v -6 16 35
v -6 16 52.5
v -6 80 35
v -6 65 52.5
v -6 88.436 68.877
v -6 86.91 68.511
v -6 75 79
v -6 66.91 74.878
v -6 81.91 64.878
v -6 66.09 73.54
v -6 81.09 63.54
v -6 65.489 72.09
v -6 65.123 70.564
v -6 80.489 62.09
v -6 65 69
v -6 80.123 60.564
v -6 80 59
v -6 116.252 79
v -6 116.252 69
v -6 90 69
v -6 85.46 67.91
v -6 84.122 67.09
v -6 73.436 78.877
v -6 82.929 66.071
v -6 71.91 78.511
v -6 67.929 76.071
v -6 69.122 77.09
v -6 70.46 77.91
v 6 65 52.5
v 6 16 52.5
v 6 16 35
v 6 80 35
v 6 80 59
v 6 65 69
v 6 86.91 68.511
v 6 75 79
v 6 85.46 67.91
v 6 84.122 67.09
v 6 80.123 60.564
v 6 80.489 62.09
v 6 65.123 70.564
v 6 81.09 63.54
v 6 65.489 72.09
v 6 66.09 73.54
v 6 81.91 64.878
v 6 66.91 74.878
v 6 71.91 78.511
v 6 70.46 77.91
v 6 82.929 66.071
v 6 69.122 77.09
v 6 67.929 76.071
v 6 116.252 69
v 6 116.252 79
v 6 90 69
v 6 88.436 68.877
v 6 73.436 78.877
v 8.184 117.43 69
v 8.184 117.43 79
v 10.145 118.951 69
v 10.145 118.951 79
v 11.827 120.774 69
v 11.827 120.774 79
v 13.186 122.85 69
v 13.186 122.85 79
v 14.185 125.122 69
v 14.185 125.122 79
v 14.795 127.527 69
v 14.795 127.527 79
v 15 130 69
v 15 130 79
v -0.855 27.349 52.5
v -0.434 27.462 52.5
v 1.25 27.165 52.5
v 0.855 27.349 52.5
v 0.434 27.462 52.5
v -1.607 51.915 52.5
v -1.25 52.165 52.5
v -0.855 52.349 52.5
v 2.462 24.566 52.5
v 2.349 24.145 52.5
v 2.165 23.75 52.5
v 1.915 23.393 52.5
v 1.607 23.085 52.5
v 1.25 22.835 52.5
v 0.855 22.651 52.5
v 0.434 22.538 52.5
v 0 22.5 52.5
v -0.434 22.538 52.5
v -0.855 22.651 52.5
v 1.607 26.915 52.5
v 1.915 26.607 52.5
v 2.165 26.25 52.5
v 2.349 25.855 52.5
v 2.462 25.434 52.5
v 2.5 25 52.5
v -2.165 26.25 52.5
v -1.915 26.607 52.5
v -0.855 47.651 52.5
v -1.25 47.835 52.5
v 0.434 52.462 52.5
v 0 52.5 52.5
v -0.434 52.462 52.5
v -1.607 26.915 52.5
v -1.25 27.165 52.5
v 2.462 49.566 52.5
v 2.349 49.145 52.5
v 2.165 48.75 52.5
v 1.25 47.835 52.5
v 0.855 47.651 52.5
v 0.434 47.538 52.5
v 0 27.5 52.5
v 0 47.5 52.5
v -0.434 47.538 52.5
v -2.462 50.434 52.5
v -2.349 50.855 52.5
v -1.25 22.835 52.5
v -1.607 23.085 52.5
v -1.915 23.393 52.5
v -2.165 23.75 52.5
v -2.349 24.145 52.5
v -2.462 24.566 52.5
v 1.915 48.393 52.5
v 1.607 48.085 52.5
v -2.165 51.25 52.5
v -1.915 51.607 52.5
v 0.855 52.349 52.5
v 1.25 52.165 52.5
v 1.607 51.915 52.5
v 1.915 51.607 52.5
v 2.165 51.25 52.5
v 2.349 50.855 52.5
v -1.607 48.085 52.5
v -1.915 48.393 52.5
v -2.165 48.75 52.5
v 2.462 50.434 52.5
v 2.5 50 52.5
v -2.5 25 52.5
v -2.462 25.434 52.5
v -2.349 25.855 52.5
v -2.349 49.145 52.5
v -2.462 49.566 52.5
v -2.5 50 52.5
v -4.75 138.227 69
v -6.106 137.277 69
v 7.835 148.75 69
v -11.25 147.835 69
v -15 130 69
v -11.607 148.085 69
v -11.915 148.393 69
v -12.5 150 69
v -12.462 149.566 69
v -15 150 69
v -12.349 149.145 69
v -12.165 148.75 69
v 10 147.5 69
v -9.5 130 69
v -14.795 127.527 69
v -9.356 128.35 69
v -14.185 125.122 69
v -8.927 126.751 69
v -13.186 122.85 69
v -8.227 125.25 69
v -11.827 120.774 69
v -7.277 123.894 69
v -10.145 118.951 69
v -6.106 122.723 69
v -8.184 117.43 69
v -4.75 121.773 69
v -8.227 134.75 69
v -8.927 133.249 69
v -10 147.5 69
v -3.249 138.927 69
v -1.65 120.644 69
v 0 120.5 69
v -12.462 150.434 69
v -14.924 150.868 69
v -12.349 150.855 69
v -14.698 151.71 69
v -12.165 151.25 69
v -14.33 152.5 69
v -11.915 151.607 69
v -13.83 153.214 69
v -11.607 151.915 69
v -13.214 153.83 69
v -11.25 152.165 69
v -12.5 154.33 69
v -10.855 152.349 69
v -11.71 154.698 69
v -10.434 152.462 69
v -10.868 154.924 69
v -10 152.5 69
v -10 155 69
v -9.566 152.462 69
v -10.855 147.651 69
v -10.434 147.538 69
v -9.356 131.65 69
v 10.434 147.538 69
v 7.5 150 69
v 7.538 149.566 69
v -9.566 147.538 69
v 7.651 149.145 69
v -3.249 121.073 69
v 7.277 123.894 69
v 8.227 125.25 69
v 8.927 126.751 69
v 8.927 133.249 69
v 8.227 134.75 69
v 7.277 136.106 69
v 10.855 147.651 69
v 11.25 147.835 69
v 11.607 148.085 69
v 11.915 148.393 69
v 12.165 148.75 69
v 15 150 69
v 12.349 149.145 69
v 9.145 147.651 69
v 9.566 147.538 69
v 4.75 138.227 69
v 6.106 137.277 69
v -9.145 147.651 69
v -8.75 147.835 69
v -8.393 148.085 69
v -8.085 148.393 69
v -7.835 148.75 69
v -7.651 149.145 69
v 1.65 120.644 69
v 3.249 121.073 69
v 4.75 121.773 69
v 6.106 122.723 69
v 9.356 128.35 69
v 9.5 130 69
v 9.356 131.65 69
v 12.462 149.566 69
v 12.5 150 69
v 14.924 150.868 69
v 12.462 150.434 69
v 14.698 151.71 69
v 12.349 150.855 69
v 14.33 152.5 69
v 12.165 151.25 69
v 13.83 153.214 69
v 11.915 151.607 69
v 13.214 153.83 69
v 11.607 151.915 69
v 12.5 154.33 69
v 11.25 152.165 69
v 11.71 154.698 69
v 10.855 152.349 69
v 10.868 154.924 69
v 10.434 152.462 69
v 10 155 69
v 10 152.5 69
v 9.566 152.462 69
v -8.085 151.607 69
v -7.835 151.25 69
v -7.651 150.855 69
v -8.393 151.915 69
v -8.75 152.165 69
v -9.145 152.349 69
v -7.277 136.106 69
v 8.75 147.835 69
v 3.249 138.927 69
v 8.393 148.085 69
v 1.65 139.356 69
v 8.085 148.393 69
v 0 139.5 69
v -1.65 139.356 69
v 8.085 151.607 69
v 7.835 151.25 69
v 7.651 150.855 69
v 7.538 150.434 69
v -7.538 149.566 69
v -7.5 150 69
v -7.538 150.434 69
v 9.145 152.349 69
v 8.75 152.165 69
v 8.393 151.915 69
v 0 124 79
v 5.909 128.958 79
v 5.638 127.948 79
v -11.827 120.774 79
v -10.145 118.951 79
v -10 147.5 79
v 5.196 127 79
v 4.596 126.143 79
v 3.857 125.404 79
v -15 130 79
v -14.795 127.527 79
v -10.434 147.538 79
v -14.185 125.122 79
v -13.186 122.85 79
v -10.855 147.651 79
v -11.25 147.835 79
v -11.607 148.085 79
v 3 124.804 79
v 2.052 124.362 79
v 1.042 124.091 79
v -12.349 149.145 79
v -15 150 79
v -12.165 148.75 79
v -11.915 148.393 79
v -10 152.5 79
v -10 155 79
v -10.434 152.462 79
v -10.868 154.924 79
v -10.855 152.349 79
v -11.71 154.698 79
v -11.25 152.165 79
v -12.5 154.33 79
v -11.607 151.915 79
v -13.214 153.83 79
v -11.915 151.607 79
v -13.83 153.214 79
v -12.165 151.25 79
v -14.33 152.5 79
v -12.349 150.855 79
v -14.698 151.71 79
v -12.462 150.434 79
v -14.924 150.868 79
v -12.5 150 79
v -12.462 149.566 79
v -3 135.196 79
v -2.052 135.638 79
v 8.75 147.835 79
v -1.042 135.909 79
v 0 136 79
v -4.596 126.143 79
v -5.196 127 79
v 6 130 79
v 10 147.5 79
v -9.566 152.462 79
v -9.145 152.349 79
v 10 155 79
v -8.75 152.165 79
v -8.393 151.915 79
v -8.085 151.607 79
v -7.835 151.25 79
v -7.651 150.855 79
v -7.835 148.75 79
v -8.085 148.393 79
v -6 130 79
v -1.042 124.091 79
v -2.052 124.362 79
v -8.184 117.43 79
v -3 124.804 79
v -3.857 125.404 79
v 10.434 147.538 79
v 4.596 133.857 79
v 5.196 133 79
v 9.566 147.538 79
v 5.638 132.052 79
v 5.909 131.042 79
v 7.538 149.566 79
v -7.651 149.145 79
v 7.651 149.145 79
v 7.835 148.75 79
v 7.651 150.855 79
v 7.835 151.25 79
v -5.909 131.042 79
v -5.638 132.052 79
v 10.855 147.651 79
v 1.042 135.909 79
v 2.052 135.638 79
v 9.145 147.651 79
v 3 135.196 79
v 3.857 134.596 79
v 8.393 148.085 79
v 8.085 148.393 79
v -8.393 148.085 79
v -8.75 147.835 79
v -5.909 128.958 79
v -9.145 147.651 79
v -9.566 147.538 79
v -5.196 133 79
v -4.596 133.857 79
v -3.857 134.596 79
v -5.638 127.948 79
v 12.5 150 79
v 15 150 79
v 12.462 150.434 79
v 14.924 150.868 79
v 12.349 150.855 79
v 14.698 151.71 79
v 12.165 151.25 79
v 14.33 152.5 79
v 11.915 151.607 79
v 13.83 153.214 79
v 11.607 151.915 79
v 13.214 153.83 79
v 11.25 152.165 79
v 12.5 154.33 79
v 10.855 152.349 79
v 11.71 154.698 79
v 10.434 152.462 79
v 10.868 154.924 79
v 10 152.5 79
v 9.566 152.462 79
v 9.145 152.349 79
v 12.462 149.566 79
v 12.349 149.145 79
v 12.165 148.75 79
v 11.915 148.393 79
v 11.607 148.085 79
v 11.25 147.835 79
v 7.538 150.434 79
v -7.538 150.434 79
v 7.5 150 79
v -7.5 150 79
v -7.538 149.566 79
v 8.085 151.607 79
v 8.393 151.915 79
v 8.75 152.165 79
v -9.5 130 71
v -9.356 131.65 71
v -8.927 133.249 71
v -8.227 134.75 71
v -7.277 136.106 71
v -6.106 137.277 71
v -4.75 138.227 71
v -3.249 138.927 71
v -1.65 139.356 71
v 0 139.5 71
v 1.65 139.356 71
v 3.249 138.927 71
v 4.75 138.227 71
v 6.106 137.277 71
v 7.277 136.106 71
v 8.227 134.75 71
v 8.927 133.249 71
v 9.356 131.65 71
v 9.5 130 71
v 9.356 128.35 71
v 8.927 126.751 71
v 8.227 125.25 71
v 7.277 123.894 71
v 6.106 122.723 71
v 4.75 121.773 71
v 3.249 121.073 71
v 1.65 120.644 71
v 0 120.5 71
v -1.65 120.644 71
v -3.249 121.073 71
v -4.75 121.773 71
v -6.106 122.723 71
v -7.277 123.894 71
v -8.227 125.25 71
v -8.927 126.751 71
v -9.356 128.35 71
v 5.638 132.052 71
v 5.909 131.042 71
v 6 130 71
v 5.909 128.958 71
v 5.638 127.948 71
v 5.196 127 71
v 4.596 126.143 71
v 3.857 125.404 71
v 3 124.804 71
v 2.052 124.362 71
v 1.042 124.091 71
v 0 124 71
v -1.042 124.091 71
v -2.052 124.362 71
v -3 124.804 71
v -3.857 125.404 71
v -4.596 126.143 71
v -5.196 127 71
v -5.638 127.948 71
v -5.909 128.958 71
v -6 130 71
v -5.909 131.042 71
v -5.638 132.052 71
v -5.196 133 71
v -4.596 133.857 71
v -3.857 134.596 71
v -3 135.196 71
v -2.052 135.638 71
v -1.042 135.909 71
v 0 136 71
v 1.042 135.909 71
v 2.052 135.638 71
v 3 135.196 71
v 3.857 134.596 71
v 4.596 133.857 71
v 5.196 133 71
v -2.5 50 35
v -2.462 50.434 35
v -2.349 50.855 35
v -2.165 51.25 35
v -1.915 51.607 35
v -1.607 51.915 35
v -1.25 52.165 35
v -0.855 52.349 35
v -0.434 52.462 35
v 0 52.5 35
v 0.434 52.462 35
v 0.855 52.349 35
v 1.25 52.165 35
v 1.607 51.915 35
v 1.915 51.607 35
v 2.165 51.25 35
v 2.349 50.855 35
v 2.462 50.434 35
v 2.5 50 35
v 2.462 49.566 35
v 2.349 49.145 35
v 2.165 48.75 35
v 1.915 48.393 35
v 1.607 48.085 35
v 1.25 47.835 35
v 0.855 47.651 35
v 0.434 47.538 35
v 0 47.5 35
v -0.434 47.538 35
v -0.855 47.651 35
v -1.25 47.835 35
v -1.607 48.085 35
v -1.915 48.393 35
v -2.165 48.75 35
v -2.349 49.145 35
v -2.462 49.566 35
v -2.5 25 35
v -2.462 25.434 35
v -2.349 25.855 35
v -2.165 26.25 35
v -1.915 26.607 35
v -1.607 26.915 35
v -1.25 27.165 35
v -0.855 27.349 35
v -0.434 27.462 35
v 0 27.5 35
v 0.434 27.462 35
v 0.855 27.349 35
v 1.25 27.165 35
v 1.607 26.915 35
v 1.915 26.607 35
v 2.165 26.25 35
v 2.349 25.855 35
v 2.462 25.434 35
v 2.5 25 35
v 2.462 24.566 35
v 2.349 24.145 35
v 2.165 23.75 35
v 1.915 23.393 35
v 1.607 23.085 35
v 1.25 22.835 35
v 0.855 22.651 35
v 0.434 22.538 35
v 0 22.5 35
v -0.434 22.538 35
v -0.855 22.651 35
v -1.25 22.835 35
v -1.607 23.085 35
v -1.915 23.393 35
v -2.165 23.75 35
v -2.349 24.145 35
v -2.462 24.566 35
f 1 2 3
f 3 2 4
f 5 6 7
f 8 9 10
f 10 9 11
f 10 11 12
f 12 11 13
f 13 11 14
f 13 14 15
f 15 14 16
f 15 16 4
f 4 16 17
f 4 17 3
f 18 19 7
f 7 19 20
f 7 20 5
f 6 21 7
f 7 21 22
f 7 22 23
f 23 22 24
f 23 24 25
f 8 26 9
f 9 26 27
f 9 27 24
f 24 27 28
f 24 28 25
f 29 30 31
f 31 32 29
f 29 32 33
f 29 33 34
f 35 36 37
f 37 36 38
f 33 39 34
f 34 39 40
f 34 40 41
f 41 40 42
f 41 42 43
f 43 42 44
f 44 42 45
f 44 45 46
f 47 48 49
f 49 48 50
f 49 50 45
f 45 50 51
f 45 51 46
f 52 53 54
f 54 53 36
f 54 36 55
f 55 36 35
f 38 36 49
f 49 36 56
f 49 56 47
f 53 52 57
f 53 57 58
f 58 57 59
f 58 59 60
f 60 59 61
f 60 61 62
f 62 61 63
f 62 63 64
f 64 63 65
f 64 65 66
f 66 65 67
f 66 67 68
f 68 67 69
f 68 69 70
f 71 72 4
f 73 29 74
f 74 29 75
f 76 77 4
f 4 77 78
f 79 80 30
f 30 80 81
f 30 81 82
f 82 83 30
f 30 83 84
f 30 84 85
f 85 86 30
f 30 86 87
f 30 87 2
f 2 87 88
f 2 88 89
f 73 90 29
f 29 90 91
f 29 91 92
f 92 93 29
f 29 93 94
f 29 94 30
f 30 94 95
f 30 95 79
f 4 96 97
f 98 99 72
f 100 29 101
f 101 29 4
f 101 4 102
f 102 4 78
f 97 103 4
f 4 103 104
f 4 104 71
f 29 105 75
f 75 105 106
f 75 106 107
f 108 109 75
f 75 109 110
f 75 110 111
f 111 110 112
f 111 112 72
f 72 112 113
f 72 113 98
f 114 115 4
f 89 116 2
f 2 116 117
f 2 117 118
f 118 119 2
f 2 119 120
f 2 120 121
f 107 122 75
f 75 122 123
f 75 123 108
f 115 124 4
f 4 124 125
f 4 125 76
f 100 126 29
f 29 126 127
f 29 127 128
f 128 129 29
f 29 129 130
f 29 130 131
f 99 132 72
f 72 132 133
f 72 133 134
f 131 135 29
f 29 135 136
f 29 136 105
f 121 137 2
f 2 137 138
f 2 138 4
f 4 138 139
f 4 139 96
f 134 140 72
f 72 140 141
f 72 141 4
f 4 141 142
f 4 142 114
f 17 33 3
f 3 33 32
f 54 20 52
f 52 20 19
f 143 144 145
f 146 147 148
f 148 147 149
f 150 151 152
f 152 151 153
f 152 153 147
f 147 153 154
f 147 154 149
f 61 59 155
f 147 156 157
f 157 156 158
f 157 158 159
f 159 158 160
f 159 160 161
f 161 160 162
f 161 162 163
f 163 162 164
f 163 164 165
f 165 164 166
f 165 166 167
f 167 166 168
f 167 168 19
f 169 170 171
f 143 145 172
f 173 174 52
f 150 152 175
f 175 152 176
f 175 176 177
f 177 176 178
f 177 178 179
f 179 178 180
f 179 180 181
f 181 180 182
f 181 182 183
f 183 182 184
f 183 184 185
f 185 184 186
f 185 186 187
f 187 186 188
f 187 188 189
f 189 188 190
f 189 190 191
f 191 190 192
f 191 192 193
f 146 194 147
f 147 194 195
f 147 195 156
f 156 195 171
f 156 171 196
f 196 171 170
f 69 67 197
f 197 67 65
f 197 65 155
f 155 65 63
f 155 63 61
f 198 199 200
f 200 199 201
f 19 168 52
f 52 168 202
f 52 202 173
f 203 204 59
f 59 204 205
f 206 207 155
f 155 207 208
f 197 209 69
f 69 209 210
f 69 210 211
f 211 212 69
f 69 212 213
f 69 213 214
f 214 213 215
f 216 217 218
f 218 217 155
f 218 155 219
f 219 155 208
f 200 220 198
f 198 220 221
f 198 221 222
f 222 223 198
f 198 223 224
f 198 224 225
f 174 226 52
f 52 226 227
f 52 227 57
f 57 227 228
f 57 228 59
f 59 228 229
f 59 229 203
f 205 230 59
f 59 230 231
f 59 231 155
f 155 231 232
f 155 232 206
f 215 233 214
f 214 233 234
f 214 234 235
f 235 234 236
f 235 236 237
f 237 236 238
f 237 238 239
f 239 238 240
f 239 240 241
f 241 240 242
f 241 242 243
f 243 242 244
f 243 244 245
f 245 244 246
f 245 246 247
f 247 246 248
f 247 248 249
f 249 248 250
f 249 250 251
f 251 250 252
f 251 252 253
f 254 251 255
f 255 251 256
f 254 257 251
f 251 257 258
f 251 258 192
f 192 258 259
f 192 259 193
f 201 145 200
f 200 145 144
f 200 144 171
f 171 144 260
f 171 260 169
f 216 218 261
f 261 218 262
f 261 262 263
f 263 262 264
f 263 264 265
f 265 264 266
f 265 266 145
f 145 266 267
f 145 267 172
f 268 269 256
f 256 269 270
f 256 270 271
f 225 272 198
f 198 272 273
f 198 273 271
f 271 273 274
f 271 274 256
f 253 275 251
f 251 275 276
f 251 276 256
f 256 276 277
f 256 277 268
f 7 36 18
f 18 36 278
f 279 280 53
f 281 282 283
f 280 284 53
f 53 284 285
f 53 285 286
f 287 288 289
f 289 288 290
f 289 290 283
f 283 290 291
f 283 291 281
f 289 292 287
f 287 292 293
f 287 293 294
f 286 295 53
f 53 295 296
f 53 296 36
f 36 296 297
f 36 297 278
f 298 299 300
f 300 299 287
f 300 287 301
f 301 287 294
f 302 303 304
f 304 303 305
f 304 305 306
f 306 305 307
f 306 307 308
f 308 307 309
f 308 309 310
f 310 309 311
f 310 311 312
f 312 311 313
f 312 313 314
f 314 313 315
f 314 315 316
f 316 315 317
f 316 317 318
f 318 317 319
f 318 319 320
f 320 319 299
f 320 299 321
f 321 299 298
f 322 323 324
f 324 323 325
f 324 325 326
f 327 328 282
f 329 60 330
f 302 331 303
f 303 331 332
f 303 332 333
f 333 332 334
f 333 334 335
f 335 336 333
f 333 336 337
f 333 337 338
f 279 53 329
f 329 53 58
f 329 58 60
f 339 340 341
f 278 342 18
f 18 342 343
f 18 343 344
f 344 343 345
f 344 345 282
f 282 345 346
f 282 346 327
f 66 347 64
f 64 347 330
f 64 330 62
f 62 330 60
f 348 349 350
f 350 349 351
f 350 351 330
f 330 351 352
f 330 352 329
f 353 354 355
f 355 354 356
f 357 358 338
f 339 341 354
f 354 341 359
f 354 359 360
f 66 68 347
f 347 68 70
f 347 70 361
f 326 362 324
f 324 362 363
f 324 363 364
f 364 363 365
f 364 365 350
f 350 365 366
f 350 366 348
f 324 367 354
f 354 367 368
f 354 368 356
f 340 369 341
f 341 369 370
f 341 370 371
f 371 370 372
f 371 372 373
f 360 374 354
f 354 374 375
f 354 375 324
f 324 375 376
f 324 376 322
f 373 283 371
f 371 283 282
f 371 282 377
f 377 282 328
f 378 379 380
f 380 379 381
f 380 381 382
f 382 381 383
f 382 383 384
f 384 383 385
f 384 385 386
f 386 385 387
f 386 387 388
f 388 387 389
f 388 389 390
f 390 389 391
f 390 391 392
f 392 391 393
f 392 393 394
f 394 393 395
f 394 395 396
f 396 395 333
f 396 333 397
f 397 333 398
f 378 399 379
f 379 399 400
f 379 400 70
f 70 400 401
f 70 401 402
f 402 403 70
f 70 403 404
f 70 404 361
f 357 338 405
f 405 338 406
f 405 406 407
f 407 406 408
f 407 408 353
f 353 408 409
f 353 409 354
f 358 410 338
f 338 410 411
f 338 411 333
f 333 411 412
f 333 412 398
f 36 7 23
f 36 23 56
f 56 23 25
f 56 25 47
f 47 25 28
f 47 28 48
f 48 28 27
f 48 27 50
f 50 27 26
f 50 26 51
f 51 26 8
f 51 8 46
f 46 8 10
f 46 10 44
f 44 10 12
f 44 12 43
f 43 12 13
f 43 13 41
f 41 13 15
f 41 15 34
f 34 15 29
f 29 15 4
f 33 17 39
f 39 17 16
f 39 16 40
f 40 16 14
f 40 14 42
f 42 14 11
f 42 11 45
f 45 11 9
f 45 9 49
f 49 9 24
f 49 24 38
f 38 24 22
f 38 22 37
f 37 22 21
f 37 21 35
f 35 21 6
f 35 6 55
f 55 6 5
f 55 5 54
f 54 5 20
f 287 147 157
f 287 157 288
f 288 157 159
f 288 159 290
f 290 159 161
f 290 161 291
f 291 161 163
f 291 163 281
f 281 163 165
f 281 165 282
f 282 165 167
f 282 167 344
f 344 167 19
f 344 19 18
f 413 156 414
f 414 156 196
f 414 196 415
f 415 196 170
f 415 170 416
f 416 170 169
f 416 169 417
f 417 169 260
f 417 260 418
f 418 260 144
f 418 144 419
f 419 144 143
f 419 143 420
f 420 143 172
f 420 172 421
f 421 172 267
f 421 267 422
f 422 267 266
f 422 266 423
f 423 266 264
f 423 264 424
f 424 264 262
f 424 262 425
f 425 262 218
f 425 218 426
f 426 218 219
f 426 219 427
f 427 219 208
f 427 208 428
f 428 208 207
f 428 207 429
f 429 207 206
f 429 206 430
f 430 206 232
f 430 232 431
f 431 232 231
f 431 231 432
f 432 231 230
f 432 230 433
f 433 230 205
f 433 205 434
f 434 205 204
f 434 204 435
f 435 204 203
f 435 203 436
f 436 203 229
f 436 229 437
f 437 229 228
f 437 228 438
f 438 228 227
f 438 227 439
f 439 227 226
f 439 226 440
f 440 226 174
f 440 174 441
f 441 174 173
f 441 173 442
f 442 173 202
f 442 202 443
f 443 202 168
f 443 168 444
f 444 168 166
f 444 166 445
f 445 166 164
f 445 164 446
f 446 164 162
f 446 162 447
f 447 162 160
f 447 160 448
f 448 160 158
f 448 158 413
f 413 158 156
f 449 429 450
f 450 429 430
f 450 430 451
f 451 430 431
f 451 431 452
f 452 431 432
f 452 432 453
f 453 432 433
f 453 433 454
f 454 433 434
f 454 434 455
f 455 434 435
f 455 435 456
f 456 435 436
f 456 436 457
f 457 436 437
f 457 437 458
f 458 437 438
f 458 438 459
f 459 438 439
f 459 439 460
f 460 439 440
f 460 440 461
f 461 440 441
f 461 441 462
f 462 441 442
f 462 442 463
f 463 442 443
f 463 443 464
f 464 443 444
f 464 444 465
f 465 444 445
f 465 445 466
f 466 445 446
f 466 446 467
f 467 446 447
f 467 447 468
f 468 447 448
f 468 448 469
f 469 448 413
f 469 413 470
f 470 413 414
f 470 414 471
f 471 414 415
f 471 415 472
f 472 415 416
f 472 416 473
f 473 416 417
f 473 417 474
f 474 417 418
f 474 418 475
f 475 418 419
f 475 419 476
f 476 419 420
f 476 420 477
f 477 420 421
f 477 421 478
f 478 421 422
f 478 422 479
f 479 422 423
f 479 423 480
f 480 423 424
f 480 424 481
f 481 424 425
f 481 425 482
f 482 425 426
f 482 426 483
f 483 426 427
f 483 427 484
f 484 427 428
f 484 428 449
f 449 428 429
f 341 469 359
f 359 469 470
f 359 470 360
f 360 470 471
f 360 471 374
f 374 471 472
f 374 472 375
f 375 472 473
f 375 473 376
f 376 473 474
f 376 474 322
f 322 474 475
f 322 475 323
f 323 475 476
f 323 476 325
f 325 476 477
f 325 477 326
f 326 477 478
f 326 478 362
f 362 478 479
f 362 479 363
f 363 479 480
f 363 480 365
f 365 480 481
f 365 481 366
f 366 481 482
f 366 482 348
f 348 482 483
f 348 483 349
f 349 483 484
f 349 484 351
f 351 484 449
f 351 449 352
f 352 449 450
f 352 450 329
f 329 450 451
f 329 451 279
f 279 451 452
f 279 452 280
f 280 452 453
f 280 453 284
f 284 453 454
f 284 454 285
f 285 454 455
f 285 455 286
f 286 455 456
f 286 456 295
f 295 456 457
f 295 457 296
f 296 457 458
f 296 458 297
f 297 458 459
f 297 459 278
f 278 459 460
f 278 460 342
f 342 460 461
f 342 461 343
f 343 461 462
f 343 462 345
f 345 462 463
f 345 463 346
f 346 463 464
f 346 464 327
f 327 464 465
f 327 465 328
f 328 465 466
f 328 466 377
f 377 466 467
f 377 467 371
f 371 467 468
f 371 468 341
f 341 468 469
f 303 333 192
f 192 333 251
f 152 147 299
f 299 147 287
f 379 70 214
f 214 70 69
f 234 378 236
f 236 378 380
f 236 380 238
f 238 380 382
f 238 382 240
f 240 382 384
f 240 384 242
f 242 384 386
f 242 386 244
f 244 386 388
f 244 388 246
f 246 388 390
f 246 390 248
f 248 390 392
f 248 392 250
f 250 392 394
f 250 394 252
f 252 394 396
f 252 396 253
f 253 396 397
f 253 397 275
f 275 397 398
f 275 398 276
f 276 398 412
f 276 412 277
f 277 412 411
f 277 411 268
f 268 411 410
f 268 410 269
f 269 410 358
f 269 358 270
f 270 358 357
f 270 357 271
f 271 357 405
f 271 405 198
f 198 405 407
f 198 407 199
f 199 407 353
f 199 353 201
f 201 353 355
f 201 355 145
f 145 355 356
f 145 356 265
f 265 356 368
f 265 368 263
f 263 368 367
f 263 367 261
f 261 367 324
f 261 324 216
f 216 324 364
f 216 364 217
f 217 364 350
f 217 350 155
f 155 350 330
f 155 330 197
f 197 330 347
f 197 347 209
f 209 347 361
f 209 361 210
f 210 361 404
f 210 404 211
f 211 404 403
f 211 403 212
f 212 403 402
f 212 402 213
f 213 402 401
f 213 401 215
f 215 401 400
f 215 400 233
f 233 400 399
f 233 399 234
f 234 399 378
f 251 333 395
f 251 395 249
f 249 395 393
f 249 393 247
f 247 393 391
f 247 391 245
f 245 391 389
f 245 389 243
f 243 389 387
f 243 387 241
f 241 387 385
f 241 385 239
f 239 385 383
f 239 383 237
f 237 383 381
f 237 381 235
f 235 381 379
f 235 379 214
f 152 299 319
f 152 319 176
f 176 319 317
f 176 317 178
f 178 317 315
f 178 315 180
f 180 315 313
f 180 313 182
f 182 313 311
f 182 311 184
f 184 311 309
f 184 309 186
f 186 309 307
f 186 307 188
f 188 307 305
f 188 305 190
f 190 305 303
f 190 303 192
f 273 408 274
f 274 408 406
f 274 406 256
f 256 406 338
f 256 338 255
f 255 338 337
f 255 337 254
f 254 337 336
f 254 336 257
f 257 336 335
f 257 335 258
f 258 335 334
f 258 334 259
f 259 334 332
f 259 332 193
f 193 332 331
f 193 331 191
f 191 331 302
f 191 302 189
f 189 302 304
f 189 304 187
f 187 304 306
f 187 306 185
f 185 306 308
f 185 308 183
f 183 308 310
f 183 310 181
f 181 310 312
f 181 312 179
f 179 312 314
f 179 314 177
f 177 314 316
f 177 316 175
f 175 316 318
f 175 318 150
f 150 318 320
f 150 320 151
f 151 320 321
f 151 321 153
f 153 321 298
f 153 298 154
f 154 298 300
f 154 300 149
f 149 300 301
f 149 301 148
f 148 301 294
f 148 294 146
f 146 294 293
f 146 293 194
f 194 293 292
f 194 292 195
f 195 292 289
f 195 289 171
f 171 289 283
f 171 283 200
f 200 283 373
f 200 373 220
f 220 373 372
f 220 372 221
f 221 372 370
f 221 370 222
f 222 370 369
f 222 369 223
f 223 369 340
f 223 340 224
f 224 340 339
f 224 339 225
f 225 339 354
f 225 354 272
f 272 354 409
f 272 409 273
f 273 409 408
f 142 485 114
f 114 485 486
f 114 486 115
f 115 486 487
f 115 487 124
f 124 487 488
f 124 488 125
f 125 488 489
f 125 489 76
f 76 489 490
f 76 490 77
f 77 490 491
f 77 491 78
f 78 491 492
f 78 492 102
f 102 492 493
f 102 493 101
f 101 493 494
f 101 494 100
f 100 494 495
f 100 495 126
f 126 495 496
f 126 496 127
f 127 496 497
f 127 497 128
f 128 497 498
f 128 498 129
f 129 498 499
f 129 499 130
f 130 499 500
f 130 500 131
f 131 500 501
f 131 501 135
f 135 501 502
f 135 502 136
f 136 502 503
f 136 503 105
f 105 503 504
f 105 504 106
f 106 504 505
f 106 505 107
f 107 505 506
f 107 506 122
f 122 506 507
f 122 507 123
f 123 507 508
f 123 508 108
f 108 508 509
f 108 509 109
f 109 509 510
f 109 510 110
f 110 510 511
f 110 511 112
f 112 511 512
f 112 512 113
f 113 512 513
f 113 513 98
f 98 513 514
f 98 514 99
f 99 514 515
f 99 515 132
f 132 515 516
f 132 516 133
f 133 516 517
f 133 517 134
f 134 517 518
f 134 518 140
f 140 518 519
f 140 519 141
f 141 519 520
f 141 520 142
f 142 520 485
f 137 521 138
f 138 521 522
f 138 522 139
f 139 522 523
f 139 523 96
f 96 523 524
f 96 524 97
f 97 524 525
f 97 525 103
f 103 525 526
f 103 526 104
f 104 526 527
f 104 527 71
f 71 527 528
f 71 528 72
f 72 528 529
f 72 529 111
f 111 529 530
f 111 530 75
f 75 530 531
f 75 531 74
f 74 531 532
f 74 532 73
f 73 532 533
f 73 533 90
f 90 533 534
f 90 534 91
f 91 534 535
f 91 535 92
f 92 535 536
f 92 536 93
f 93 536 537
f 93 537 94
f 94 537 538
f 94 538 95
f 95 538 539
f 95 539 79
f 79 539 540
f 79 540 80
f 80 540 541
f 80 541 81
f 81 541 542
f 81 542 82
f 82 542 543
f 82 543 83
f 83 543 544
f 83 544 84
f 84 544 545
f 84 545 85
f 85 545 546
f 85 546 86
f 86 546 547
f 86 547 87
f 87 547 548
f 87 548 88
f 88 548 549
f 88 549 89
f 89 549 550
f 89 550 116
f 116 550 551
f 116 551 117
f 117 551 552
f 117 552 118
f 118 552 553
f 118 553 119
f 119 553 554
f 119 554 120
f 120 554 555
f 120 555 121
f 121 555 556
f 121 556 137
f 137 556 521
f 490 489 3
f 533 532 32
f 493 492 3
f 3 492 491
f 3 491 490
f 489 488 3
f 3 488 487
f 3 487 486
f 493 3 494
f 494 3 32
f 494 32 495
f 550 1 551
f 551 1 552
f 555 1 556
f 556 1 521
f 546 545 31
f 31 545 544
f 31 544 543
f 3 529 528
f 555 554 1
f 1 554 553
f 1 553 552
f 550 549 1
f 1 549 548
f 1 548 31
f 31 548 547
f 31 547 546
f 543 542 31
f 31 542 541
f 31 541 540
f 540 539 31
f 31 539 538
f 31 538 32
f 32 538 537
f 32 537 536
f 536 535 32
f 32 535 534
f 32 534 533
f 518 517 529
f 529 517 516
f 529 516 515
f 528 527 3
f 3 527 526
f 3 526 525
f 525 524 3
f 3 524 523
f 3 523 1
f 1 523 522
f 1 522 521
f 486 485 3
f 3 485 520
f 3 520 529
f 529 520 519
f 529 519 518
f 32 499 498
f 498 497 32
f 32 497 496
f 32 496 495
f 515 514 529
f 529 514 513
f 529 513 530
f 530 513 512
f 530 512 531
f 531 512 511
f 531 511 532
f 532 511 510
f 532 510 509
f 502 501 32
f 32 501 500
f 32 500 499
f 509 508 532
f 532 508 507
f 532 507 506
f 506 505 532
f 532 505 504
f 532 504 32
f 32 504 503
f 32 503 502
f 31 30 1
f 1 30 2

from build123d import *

# Parameters (mm, degrees)
SKETCH_1_R               = 5
EXTRUDE_1_DEPTH          = 12.5
SKETCH_2_R               = 6
EXTRUDE_2_DEPTH          = 22.5
SKETCH_3_R               = 5
EXTRUDE_3_DEPTH          = 12.5
SKETCH_4_W               = 12
SKETCH_4_H               = 35
EXTRUDE_4_DEPTH          = 80
EXTRUDE_5_DEPTH          = 12
EXTRUDE_6_DEPTH          = 10
SKETCH_7_R               = 9.5
CUT_EXTRUDE_1_DEPTH      = 2
SKETCH_8_R               = 6
CUT_EXTRUDE_2_DEPTH      = 166.329973084
EXTRUDE_START            = -10
EXTRUDE_7_DEPTH          = 10
SKETCH_10_R              = 2.5
CUT_EXTRUDE_3_DEPTH      = 10
FILLET_1_R               = 5
FILLET_2_R               = 5
SKETCH_11_R              = 2.5
CUT_EXTRUDE_4_DEPTH      = 10
EXTRUDE_8_DEPTH          = 10
SKETCH_13_R              = 12.5
SKETCH_13_R_2            = 2
CUT_EXTRUDE_5_DEPTH      = 10
PATTERN_CIRCULAR_1_COUNT = 8
SKETCH_14_R              = 2.5
EXTRUDE_9_DEPTH          = 10
SKETCH_15_R              = 2.5
CUT_EXTRUDE_6_DEPTH      = 35
CUT_EXTRUDE_7_DEPTH      = 175.719754648
CUT_EXTRUDE_8_DEPTH      = 1
CUT_EXTRUDE_8_DEPTH_BACK = 162.449682564
SKETCH_18_W              = 84.288718948
SKETCH_18_H              = 107.811152142


with BuildPart() as part:
    # 草图1 → 凸台-拉伸1 (new body)
    with BuildSketch(Plane.XY):
        Circle(SKETCH_1_R)
    extrude(amount=EXTRUDE_1_DEPTH)

    # 草图2 → 凸台-拉伸2 (add)
    with BuildSketch(Plane.XY.offset(12.5)):
        with Locations(Location((0, 0, 0), (0, 0, 180))):
            Circle(SKETCH_2_R)
    extrude_2 = extrude(amount=EXTRUDE_2_DEPTH)

    # 镜向2: 凸台-拉伸2 across plane
    add(extrude_2.mirror(Plane.XY.offset(35)))

    # 草图3 → 凸台-拉伸3 (add)
    with BuildSketch(Plane.XY.offset(57.5)):
        Circle(SKETCH_3_R)
    extrude(amount=EXTRUDE_3_DEPTH)

    # 草图4 → 凸台-拉伸4 (add)
    with BuildSketch(Plane(origin=(0, 0, 0), x_dir=(1, 0, 0), z_dir=(0, 1, 0))):
        with Locations((0, -35)):
            Rectangle(SKETCH_4_W, SKETCH_4_H)
    extrude(amount=EXTRUDE_4_DEPTH)

    # 草图5 → 凸台-拉伸5 (add)
    with BuildSketch(Plane.ZY.offset(6)):
        with BuildLine():
            Line((17.5, 65), (17.5, 80))
            Line((17.5, 80), (13, 80))
            ThreePointArc((13, 80), (5.928932188, 82.928932188), (3, 90))
            Line((3, 90), (3, 130))
            Line((3, 130), (-7, 130))
            Line((-7, 130), (-7, 75))
            ThreePointArc((-7, 75), (-4.071067812, 67.928932188), (3, 65))
            Line((3, 65), (17.5, 65))
        make_face()
        with BuildLine():
            Line((59, 80), (52.5, 80))
            Line((52.5, 80), (52.5, 65))
            Line((52.5, 65), (69, 65))
            ThreePointArc((69, 65), (76.071067812, 67.928932188), (79, 75))
            Line((79, 75), (79, 130))
            Line((79, 130), (69, 130))
            Line((69, 130), (69, 90))
            ThreePointArc((69, 90), (66.071067812, 82.928932188), (59, 80))
        make_face()
    extrude(amount=-EXTRUDE_5_DEPTH)

    # 草图6 → 凸台-拉伸6 (add)
    with BuildSketch(Plane(origin=(0, 0, 69), x_dir=(-1, 0, 0), z_dir=(0, 0, -1))):
        with BuildLine():
            Line((6, 116.252272915), (6, 130))
            Line((6, 130), (-6, 130))
            Line((-6, 130), (-6, 116.252272915))
            ThreePointArc((-6, 116.252272915), (0, 115), (6, 116.252272915))
        make_face()
        with BuildLine():
            Line((-6, 130), (6, 130))
            Line((6, 130), (6, 116.252272915))
            ThreePointArc((6, 116.252272915), (12.549900398, 121.784161637), (15, 130))
            ThreePointArc((15, 130), (-8.215838363, 142.549900398), (-6, 116.252272915))
            Line((-6, 116.252272915), (-6, 130))
        make_face()
    extrude(amount=-EXTRUDE_6_DEPTH)

    # 草图7 → 切除-拉伸1 (cut)
    with BuildSketch(Plane(origin=(0, 0, 69), x_dir=(-1, 0, 0), z_dir=(0, 0, -1))):
        with Locations((0, 130)):
            Circle(SKETCH_7_R)
    extrude(amount=-CUT_EXTRUDE_1_DEPTH, mode=Mode.SUBTRACT)

    # 草图8 → 切除-拉伸2 (cut, through all)
    with BuildSketch(Plane(origin=(0, 0, 71), x_dir=(-1, 0, 0), z_dir=(0, 0, -1))):
        with Locations((0, 130)):
            Circle(SKETCH_8_R)
    extrude(amount=-CUT_EXTRUDE_2_DEPTH, mode=Mode.SUBTRACT)

    # 草图9 → 凸台-拉伸7 (add)
    with BuildSketch(Plane.XY.offset(79).offset(EXTRUDE_START)):
        with BuildLine():
            Line((-15, 155), (-15, 130))
            ThreePointArc((-15, 130), (0, 145), (15, 130))
            Line((15, 130), (15, 155))
            Line((15, 155), (-15, 155))
        make_face()
    extrude(amount=EXTRUDE_7_DEPTH)

    # 草图10 → 切除-拉伸3 (cut)
    with BuildSketch(Plane.XY.offset(79)):
        with Locations((10, 150)):
            Circle(SKETCH_10_R)
    extrude(amount=-CUT_EXTRUDE_3_DEPTH, mode=Mode.SUBTRACT)

    # 圆角1
    fillet_1_edges = [part.edges().sort_by_distance(p)[0] for p in [
        (15, 155, 74),
    ]]
    fillet(fillet_1_edges, radius=FILLET_1_R)

    # 圆角2
    fillet_2_edges = [part.edges().sort_by_distance(p)[0] for p in [
        (-15, 155, 74),
    ]]
    fillet(fillet_2_edges, radius=FILLET_2_R)

    # 草图11 → 切除-拉伸4 (cut)
    with BuildSketch(Plane.XY.offset(79)):
        with Locations((-10, 150)):
            Circle(SKETCH_11_R)
    extrude(amount=-CUT_EXTRUDE_4_DEPTH, mode=Mode.SUBTRACT)

    # 草图12 → 凸台-拉伸8 (add)
    with BuildSketch(Plane.XY.offset(3)):
        with BuildLine():
            ThreePointArc((-6, 103.162526199), (0, 102.5), (6, 103.162526199))
            Line((6, 103.162526199), (6, 130))
            Line((6, 130), (-6, 130))
            Line((-6, 130), (-6, 103.162526199))
        make_face()
        with BuildLine():
            Line((6, 130), (6, 103.162526199))
            ThreePointArc((6, 103.162526199), (21.462176031, 112.806251136), (27.5, 130))
            ThreePointArc((27.5, 130), (-17.193748864, 151.462176031), (-6, 103.162526199))
            Line((-6, 103.162526199), (-6, 130))
            Line((-6, 130), (6, 130))
        make_face()
    extrude(amount=-EXTRUDE_8_DEPTH)

    # 草图13 → 切除-拉伸5 (cut)
    with BuildSketch(Plane(origin=(0, 0, -7), x_dir=(-1, 0, 0), z_dir=(0, 0, -1))):
        with Locations(Location((0, 130, 0), (0, 0, 90))):
            Circle(SKETCH_13_R)
        with Locations(Location((0, 150, 0), (0, 0, 90))):
            Circle(SKETCH_13_R_2)
    cut_extrude_5 = extrude(amount=-CUT_EXTRUDE_5_DEPTH, mode=Mode.SUBTRACT)

    # 阵列(圆周)1: 切除-拉伸5 ×8 about axis
    pattern_circular_1_axis = Axis((0, 130, 0), (0, 0, 1))
    for i in range(1, PATTERN_CIRCULAR_1_COUNT):
        add(cut_extrude_5.rotate(pattern_circular_1_axis, i * 360 / PATTERN_CIRCULAR_1_COUNT), mode=Mode.SUBTRACT)

    # 草图14 → 凸台-拉伸9 (add)
    with BuildSketch(Plane(origin=(0, 0, -7), x_dir=(-1, 0, 0), z_dir=(0, 0, -1)).offset(EXTRUDE_START)):
        with BuildLine():
            Line((-6, 161.837473801), (-6, 156.837473801))
            ThreePointArc((-6, 156.837473801), (0, 157.5), (6, 156.837473801))
            Line((6, 156.837473801), (6, 161.837473801))
            ThreePointArc((6, 161.837473801), (4.535533906, 165.373007707), (1, 166.837473801))
            Line((1, 166.837473801), (-1, 166.837473801))
            ThreePointArc((-1, 166.837473801), (-4.535533906, 165.373007707), (-6, 161.837473801))
        make_face()
        with Locations(Location((0, 161.837473801, 0), (0, 0, 90))):
            Circle(SKETCH_14_R, mode=Mode.SUBTRACT)
    extrude(amount=EXTRUDE_9_DEPTH)

    # 草图15 → 切除-拉伸6 (cut)
    with BuildSketch(Plane(origin=(0, 0, 17.5), x_dir=(-1, 0, 0), z_dir=(0, 0, -1))):
        with Locations((0, 25)):
            Circle(SKETCH_15_R)
        with Locations((0, 50)):
            Circle(SKETCH_15_R)
    extrude(amount=-CUT_EXTRUDE_6_DEPTH, mode=Mode.SUBTRACT)

    # 草图16 → 切除-拉伸7 (cut, through all)
    with BuildSketch(Plane.XY.offset(35)):
        Polygon((-6, 97.653254631), (-6, 65), (-6, 15), (6, 15), (6, 65), (6, 97.653254631), align=None)
    extrude(amount=-CUT_EXTRUDE_7_DEPTH, mode=Mode.SUBTRACT)


with BuildPart() as cut_extrude_7_kept_piece:
    # of the separate pieces the step leaves, the one the design keeps (cut_extrude_7_pieces_kept)
    add(part.part.solids().sort_by_distance((-10, 155, 69))[0])

    # 草图18 → 切除-拉伸8 (cut, two sides: drawn at the far end of the back side and taken through both)
    with BuildSketch(Plane(origin=(0, 15, 0), x_dir=(1, 0, 0), z_dir=(0, 1, 0)).offset(-CUT_EXTRUDE_8_DEPTH_BACK)):
        with Locations((0, -29.971236553)):
            Rectangle(SKETCH_18_W, SKETCH_18_H)
    extrude(amount=CUT_EXTRUDE_8_DEPTH + CUT_EXTRUDE_8_DEPTH_BACK, mode=Mode.SUBTRACT)


solid = cut_extrude_7_kept_piece.part
